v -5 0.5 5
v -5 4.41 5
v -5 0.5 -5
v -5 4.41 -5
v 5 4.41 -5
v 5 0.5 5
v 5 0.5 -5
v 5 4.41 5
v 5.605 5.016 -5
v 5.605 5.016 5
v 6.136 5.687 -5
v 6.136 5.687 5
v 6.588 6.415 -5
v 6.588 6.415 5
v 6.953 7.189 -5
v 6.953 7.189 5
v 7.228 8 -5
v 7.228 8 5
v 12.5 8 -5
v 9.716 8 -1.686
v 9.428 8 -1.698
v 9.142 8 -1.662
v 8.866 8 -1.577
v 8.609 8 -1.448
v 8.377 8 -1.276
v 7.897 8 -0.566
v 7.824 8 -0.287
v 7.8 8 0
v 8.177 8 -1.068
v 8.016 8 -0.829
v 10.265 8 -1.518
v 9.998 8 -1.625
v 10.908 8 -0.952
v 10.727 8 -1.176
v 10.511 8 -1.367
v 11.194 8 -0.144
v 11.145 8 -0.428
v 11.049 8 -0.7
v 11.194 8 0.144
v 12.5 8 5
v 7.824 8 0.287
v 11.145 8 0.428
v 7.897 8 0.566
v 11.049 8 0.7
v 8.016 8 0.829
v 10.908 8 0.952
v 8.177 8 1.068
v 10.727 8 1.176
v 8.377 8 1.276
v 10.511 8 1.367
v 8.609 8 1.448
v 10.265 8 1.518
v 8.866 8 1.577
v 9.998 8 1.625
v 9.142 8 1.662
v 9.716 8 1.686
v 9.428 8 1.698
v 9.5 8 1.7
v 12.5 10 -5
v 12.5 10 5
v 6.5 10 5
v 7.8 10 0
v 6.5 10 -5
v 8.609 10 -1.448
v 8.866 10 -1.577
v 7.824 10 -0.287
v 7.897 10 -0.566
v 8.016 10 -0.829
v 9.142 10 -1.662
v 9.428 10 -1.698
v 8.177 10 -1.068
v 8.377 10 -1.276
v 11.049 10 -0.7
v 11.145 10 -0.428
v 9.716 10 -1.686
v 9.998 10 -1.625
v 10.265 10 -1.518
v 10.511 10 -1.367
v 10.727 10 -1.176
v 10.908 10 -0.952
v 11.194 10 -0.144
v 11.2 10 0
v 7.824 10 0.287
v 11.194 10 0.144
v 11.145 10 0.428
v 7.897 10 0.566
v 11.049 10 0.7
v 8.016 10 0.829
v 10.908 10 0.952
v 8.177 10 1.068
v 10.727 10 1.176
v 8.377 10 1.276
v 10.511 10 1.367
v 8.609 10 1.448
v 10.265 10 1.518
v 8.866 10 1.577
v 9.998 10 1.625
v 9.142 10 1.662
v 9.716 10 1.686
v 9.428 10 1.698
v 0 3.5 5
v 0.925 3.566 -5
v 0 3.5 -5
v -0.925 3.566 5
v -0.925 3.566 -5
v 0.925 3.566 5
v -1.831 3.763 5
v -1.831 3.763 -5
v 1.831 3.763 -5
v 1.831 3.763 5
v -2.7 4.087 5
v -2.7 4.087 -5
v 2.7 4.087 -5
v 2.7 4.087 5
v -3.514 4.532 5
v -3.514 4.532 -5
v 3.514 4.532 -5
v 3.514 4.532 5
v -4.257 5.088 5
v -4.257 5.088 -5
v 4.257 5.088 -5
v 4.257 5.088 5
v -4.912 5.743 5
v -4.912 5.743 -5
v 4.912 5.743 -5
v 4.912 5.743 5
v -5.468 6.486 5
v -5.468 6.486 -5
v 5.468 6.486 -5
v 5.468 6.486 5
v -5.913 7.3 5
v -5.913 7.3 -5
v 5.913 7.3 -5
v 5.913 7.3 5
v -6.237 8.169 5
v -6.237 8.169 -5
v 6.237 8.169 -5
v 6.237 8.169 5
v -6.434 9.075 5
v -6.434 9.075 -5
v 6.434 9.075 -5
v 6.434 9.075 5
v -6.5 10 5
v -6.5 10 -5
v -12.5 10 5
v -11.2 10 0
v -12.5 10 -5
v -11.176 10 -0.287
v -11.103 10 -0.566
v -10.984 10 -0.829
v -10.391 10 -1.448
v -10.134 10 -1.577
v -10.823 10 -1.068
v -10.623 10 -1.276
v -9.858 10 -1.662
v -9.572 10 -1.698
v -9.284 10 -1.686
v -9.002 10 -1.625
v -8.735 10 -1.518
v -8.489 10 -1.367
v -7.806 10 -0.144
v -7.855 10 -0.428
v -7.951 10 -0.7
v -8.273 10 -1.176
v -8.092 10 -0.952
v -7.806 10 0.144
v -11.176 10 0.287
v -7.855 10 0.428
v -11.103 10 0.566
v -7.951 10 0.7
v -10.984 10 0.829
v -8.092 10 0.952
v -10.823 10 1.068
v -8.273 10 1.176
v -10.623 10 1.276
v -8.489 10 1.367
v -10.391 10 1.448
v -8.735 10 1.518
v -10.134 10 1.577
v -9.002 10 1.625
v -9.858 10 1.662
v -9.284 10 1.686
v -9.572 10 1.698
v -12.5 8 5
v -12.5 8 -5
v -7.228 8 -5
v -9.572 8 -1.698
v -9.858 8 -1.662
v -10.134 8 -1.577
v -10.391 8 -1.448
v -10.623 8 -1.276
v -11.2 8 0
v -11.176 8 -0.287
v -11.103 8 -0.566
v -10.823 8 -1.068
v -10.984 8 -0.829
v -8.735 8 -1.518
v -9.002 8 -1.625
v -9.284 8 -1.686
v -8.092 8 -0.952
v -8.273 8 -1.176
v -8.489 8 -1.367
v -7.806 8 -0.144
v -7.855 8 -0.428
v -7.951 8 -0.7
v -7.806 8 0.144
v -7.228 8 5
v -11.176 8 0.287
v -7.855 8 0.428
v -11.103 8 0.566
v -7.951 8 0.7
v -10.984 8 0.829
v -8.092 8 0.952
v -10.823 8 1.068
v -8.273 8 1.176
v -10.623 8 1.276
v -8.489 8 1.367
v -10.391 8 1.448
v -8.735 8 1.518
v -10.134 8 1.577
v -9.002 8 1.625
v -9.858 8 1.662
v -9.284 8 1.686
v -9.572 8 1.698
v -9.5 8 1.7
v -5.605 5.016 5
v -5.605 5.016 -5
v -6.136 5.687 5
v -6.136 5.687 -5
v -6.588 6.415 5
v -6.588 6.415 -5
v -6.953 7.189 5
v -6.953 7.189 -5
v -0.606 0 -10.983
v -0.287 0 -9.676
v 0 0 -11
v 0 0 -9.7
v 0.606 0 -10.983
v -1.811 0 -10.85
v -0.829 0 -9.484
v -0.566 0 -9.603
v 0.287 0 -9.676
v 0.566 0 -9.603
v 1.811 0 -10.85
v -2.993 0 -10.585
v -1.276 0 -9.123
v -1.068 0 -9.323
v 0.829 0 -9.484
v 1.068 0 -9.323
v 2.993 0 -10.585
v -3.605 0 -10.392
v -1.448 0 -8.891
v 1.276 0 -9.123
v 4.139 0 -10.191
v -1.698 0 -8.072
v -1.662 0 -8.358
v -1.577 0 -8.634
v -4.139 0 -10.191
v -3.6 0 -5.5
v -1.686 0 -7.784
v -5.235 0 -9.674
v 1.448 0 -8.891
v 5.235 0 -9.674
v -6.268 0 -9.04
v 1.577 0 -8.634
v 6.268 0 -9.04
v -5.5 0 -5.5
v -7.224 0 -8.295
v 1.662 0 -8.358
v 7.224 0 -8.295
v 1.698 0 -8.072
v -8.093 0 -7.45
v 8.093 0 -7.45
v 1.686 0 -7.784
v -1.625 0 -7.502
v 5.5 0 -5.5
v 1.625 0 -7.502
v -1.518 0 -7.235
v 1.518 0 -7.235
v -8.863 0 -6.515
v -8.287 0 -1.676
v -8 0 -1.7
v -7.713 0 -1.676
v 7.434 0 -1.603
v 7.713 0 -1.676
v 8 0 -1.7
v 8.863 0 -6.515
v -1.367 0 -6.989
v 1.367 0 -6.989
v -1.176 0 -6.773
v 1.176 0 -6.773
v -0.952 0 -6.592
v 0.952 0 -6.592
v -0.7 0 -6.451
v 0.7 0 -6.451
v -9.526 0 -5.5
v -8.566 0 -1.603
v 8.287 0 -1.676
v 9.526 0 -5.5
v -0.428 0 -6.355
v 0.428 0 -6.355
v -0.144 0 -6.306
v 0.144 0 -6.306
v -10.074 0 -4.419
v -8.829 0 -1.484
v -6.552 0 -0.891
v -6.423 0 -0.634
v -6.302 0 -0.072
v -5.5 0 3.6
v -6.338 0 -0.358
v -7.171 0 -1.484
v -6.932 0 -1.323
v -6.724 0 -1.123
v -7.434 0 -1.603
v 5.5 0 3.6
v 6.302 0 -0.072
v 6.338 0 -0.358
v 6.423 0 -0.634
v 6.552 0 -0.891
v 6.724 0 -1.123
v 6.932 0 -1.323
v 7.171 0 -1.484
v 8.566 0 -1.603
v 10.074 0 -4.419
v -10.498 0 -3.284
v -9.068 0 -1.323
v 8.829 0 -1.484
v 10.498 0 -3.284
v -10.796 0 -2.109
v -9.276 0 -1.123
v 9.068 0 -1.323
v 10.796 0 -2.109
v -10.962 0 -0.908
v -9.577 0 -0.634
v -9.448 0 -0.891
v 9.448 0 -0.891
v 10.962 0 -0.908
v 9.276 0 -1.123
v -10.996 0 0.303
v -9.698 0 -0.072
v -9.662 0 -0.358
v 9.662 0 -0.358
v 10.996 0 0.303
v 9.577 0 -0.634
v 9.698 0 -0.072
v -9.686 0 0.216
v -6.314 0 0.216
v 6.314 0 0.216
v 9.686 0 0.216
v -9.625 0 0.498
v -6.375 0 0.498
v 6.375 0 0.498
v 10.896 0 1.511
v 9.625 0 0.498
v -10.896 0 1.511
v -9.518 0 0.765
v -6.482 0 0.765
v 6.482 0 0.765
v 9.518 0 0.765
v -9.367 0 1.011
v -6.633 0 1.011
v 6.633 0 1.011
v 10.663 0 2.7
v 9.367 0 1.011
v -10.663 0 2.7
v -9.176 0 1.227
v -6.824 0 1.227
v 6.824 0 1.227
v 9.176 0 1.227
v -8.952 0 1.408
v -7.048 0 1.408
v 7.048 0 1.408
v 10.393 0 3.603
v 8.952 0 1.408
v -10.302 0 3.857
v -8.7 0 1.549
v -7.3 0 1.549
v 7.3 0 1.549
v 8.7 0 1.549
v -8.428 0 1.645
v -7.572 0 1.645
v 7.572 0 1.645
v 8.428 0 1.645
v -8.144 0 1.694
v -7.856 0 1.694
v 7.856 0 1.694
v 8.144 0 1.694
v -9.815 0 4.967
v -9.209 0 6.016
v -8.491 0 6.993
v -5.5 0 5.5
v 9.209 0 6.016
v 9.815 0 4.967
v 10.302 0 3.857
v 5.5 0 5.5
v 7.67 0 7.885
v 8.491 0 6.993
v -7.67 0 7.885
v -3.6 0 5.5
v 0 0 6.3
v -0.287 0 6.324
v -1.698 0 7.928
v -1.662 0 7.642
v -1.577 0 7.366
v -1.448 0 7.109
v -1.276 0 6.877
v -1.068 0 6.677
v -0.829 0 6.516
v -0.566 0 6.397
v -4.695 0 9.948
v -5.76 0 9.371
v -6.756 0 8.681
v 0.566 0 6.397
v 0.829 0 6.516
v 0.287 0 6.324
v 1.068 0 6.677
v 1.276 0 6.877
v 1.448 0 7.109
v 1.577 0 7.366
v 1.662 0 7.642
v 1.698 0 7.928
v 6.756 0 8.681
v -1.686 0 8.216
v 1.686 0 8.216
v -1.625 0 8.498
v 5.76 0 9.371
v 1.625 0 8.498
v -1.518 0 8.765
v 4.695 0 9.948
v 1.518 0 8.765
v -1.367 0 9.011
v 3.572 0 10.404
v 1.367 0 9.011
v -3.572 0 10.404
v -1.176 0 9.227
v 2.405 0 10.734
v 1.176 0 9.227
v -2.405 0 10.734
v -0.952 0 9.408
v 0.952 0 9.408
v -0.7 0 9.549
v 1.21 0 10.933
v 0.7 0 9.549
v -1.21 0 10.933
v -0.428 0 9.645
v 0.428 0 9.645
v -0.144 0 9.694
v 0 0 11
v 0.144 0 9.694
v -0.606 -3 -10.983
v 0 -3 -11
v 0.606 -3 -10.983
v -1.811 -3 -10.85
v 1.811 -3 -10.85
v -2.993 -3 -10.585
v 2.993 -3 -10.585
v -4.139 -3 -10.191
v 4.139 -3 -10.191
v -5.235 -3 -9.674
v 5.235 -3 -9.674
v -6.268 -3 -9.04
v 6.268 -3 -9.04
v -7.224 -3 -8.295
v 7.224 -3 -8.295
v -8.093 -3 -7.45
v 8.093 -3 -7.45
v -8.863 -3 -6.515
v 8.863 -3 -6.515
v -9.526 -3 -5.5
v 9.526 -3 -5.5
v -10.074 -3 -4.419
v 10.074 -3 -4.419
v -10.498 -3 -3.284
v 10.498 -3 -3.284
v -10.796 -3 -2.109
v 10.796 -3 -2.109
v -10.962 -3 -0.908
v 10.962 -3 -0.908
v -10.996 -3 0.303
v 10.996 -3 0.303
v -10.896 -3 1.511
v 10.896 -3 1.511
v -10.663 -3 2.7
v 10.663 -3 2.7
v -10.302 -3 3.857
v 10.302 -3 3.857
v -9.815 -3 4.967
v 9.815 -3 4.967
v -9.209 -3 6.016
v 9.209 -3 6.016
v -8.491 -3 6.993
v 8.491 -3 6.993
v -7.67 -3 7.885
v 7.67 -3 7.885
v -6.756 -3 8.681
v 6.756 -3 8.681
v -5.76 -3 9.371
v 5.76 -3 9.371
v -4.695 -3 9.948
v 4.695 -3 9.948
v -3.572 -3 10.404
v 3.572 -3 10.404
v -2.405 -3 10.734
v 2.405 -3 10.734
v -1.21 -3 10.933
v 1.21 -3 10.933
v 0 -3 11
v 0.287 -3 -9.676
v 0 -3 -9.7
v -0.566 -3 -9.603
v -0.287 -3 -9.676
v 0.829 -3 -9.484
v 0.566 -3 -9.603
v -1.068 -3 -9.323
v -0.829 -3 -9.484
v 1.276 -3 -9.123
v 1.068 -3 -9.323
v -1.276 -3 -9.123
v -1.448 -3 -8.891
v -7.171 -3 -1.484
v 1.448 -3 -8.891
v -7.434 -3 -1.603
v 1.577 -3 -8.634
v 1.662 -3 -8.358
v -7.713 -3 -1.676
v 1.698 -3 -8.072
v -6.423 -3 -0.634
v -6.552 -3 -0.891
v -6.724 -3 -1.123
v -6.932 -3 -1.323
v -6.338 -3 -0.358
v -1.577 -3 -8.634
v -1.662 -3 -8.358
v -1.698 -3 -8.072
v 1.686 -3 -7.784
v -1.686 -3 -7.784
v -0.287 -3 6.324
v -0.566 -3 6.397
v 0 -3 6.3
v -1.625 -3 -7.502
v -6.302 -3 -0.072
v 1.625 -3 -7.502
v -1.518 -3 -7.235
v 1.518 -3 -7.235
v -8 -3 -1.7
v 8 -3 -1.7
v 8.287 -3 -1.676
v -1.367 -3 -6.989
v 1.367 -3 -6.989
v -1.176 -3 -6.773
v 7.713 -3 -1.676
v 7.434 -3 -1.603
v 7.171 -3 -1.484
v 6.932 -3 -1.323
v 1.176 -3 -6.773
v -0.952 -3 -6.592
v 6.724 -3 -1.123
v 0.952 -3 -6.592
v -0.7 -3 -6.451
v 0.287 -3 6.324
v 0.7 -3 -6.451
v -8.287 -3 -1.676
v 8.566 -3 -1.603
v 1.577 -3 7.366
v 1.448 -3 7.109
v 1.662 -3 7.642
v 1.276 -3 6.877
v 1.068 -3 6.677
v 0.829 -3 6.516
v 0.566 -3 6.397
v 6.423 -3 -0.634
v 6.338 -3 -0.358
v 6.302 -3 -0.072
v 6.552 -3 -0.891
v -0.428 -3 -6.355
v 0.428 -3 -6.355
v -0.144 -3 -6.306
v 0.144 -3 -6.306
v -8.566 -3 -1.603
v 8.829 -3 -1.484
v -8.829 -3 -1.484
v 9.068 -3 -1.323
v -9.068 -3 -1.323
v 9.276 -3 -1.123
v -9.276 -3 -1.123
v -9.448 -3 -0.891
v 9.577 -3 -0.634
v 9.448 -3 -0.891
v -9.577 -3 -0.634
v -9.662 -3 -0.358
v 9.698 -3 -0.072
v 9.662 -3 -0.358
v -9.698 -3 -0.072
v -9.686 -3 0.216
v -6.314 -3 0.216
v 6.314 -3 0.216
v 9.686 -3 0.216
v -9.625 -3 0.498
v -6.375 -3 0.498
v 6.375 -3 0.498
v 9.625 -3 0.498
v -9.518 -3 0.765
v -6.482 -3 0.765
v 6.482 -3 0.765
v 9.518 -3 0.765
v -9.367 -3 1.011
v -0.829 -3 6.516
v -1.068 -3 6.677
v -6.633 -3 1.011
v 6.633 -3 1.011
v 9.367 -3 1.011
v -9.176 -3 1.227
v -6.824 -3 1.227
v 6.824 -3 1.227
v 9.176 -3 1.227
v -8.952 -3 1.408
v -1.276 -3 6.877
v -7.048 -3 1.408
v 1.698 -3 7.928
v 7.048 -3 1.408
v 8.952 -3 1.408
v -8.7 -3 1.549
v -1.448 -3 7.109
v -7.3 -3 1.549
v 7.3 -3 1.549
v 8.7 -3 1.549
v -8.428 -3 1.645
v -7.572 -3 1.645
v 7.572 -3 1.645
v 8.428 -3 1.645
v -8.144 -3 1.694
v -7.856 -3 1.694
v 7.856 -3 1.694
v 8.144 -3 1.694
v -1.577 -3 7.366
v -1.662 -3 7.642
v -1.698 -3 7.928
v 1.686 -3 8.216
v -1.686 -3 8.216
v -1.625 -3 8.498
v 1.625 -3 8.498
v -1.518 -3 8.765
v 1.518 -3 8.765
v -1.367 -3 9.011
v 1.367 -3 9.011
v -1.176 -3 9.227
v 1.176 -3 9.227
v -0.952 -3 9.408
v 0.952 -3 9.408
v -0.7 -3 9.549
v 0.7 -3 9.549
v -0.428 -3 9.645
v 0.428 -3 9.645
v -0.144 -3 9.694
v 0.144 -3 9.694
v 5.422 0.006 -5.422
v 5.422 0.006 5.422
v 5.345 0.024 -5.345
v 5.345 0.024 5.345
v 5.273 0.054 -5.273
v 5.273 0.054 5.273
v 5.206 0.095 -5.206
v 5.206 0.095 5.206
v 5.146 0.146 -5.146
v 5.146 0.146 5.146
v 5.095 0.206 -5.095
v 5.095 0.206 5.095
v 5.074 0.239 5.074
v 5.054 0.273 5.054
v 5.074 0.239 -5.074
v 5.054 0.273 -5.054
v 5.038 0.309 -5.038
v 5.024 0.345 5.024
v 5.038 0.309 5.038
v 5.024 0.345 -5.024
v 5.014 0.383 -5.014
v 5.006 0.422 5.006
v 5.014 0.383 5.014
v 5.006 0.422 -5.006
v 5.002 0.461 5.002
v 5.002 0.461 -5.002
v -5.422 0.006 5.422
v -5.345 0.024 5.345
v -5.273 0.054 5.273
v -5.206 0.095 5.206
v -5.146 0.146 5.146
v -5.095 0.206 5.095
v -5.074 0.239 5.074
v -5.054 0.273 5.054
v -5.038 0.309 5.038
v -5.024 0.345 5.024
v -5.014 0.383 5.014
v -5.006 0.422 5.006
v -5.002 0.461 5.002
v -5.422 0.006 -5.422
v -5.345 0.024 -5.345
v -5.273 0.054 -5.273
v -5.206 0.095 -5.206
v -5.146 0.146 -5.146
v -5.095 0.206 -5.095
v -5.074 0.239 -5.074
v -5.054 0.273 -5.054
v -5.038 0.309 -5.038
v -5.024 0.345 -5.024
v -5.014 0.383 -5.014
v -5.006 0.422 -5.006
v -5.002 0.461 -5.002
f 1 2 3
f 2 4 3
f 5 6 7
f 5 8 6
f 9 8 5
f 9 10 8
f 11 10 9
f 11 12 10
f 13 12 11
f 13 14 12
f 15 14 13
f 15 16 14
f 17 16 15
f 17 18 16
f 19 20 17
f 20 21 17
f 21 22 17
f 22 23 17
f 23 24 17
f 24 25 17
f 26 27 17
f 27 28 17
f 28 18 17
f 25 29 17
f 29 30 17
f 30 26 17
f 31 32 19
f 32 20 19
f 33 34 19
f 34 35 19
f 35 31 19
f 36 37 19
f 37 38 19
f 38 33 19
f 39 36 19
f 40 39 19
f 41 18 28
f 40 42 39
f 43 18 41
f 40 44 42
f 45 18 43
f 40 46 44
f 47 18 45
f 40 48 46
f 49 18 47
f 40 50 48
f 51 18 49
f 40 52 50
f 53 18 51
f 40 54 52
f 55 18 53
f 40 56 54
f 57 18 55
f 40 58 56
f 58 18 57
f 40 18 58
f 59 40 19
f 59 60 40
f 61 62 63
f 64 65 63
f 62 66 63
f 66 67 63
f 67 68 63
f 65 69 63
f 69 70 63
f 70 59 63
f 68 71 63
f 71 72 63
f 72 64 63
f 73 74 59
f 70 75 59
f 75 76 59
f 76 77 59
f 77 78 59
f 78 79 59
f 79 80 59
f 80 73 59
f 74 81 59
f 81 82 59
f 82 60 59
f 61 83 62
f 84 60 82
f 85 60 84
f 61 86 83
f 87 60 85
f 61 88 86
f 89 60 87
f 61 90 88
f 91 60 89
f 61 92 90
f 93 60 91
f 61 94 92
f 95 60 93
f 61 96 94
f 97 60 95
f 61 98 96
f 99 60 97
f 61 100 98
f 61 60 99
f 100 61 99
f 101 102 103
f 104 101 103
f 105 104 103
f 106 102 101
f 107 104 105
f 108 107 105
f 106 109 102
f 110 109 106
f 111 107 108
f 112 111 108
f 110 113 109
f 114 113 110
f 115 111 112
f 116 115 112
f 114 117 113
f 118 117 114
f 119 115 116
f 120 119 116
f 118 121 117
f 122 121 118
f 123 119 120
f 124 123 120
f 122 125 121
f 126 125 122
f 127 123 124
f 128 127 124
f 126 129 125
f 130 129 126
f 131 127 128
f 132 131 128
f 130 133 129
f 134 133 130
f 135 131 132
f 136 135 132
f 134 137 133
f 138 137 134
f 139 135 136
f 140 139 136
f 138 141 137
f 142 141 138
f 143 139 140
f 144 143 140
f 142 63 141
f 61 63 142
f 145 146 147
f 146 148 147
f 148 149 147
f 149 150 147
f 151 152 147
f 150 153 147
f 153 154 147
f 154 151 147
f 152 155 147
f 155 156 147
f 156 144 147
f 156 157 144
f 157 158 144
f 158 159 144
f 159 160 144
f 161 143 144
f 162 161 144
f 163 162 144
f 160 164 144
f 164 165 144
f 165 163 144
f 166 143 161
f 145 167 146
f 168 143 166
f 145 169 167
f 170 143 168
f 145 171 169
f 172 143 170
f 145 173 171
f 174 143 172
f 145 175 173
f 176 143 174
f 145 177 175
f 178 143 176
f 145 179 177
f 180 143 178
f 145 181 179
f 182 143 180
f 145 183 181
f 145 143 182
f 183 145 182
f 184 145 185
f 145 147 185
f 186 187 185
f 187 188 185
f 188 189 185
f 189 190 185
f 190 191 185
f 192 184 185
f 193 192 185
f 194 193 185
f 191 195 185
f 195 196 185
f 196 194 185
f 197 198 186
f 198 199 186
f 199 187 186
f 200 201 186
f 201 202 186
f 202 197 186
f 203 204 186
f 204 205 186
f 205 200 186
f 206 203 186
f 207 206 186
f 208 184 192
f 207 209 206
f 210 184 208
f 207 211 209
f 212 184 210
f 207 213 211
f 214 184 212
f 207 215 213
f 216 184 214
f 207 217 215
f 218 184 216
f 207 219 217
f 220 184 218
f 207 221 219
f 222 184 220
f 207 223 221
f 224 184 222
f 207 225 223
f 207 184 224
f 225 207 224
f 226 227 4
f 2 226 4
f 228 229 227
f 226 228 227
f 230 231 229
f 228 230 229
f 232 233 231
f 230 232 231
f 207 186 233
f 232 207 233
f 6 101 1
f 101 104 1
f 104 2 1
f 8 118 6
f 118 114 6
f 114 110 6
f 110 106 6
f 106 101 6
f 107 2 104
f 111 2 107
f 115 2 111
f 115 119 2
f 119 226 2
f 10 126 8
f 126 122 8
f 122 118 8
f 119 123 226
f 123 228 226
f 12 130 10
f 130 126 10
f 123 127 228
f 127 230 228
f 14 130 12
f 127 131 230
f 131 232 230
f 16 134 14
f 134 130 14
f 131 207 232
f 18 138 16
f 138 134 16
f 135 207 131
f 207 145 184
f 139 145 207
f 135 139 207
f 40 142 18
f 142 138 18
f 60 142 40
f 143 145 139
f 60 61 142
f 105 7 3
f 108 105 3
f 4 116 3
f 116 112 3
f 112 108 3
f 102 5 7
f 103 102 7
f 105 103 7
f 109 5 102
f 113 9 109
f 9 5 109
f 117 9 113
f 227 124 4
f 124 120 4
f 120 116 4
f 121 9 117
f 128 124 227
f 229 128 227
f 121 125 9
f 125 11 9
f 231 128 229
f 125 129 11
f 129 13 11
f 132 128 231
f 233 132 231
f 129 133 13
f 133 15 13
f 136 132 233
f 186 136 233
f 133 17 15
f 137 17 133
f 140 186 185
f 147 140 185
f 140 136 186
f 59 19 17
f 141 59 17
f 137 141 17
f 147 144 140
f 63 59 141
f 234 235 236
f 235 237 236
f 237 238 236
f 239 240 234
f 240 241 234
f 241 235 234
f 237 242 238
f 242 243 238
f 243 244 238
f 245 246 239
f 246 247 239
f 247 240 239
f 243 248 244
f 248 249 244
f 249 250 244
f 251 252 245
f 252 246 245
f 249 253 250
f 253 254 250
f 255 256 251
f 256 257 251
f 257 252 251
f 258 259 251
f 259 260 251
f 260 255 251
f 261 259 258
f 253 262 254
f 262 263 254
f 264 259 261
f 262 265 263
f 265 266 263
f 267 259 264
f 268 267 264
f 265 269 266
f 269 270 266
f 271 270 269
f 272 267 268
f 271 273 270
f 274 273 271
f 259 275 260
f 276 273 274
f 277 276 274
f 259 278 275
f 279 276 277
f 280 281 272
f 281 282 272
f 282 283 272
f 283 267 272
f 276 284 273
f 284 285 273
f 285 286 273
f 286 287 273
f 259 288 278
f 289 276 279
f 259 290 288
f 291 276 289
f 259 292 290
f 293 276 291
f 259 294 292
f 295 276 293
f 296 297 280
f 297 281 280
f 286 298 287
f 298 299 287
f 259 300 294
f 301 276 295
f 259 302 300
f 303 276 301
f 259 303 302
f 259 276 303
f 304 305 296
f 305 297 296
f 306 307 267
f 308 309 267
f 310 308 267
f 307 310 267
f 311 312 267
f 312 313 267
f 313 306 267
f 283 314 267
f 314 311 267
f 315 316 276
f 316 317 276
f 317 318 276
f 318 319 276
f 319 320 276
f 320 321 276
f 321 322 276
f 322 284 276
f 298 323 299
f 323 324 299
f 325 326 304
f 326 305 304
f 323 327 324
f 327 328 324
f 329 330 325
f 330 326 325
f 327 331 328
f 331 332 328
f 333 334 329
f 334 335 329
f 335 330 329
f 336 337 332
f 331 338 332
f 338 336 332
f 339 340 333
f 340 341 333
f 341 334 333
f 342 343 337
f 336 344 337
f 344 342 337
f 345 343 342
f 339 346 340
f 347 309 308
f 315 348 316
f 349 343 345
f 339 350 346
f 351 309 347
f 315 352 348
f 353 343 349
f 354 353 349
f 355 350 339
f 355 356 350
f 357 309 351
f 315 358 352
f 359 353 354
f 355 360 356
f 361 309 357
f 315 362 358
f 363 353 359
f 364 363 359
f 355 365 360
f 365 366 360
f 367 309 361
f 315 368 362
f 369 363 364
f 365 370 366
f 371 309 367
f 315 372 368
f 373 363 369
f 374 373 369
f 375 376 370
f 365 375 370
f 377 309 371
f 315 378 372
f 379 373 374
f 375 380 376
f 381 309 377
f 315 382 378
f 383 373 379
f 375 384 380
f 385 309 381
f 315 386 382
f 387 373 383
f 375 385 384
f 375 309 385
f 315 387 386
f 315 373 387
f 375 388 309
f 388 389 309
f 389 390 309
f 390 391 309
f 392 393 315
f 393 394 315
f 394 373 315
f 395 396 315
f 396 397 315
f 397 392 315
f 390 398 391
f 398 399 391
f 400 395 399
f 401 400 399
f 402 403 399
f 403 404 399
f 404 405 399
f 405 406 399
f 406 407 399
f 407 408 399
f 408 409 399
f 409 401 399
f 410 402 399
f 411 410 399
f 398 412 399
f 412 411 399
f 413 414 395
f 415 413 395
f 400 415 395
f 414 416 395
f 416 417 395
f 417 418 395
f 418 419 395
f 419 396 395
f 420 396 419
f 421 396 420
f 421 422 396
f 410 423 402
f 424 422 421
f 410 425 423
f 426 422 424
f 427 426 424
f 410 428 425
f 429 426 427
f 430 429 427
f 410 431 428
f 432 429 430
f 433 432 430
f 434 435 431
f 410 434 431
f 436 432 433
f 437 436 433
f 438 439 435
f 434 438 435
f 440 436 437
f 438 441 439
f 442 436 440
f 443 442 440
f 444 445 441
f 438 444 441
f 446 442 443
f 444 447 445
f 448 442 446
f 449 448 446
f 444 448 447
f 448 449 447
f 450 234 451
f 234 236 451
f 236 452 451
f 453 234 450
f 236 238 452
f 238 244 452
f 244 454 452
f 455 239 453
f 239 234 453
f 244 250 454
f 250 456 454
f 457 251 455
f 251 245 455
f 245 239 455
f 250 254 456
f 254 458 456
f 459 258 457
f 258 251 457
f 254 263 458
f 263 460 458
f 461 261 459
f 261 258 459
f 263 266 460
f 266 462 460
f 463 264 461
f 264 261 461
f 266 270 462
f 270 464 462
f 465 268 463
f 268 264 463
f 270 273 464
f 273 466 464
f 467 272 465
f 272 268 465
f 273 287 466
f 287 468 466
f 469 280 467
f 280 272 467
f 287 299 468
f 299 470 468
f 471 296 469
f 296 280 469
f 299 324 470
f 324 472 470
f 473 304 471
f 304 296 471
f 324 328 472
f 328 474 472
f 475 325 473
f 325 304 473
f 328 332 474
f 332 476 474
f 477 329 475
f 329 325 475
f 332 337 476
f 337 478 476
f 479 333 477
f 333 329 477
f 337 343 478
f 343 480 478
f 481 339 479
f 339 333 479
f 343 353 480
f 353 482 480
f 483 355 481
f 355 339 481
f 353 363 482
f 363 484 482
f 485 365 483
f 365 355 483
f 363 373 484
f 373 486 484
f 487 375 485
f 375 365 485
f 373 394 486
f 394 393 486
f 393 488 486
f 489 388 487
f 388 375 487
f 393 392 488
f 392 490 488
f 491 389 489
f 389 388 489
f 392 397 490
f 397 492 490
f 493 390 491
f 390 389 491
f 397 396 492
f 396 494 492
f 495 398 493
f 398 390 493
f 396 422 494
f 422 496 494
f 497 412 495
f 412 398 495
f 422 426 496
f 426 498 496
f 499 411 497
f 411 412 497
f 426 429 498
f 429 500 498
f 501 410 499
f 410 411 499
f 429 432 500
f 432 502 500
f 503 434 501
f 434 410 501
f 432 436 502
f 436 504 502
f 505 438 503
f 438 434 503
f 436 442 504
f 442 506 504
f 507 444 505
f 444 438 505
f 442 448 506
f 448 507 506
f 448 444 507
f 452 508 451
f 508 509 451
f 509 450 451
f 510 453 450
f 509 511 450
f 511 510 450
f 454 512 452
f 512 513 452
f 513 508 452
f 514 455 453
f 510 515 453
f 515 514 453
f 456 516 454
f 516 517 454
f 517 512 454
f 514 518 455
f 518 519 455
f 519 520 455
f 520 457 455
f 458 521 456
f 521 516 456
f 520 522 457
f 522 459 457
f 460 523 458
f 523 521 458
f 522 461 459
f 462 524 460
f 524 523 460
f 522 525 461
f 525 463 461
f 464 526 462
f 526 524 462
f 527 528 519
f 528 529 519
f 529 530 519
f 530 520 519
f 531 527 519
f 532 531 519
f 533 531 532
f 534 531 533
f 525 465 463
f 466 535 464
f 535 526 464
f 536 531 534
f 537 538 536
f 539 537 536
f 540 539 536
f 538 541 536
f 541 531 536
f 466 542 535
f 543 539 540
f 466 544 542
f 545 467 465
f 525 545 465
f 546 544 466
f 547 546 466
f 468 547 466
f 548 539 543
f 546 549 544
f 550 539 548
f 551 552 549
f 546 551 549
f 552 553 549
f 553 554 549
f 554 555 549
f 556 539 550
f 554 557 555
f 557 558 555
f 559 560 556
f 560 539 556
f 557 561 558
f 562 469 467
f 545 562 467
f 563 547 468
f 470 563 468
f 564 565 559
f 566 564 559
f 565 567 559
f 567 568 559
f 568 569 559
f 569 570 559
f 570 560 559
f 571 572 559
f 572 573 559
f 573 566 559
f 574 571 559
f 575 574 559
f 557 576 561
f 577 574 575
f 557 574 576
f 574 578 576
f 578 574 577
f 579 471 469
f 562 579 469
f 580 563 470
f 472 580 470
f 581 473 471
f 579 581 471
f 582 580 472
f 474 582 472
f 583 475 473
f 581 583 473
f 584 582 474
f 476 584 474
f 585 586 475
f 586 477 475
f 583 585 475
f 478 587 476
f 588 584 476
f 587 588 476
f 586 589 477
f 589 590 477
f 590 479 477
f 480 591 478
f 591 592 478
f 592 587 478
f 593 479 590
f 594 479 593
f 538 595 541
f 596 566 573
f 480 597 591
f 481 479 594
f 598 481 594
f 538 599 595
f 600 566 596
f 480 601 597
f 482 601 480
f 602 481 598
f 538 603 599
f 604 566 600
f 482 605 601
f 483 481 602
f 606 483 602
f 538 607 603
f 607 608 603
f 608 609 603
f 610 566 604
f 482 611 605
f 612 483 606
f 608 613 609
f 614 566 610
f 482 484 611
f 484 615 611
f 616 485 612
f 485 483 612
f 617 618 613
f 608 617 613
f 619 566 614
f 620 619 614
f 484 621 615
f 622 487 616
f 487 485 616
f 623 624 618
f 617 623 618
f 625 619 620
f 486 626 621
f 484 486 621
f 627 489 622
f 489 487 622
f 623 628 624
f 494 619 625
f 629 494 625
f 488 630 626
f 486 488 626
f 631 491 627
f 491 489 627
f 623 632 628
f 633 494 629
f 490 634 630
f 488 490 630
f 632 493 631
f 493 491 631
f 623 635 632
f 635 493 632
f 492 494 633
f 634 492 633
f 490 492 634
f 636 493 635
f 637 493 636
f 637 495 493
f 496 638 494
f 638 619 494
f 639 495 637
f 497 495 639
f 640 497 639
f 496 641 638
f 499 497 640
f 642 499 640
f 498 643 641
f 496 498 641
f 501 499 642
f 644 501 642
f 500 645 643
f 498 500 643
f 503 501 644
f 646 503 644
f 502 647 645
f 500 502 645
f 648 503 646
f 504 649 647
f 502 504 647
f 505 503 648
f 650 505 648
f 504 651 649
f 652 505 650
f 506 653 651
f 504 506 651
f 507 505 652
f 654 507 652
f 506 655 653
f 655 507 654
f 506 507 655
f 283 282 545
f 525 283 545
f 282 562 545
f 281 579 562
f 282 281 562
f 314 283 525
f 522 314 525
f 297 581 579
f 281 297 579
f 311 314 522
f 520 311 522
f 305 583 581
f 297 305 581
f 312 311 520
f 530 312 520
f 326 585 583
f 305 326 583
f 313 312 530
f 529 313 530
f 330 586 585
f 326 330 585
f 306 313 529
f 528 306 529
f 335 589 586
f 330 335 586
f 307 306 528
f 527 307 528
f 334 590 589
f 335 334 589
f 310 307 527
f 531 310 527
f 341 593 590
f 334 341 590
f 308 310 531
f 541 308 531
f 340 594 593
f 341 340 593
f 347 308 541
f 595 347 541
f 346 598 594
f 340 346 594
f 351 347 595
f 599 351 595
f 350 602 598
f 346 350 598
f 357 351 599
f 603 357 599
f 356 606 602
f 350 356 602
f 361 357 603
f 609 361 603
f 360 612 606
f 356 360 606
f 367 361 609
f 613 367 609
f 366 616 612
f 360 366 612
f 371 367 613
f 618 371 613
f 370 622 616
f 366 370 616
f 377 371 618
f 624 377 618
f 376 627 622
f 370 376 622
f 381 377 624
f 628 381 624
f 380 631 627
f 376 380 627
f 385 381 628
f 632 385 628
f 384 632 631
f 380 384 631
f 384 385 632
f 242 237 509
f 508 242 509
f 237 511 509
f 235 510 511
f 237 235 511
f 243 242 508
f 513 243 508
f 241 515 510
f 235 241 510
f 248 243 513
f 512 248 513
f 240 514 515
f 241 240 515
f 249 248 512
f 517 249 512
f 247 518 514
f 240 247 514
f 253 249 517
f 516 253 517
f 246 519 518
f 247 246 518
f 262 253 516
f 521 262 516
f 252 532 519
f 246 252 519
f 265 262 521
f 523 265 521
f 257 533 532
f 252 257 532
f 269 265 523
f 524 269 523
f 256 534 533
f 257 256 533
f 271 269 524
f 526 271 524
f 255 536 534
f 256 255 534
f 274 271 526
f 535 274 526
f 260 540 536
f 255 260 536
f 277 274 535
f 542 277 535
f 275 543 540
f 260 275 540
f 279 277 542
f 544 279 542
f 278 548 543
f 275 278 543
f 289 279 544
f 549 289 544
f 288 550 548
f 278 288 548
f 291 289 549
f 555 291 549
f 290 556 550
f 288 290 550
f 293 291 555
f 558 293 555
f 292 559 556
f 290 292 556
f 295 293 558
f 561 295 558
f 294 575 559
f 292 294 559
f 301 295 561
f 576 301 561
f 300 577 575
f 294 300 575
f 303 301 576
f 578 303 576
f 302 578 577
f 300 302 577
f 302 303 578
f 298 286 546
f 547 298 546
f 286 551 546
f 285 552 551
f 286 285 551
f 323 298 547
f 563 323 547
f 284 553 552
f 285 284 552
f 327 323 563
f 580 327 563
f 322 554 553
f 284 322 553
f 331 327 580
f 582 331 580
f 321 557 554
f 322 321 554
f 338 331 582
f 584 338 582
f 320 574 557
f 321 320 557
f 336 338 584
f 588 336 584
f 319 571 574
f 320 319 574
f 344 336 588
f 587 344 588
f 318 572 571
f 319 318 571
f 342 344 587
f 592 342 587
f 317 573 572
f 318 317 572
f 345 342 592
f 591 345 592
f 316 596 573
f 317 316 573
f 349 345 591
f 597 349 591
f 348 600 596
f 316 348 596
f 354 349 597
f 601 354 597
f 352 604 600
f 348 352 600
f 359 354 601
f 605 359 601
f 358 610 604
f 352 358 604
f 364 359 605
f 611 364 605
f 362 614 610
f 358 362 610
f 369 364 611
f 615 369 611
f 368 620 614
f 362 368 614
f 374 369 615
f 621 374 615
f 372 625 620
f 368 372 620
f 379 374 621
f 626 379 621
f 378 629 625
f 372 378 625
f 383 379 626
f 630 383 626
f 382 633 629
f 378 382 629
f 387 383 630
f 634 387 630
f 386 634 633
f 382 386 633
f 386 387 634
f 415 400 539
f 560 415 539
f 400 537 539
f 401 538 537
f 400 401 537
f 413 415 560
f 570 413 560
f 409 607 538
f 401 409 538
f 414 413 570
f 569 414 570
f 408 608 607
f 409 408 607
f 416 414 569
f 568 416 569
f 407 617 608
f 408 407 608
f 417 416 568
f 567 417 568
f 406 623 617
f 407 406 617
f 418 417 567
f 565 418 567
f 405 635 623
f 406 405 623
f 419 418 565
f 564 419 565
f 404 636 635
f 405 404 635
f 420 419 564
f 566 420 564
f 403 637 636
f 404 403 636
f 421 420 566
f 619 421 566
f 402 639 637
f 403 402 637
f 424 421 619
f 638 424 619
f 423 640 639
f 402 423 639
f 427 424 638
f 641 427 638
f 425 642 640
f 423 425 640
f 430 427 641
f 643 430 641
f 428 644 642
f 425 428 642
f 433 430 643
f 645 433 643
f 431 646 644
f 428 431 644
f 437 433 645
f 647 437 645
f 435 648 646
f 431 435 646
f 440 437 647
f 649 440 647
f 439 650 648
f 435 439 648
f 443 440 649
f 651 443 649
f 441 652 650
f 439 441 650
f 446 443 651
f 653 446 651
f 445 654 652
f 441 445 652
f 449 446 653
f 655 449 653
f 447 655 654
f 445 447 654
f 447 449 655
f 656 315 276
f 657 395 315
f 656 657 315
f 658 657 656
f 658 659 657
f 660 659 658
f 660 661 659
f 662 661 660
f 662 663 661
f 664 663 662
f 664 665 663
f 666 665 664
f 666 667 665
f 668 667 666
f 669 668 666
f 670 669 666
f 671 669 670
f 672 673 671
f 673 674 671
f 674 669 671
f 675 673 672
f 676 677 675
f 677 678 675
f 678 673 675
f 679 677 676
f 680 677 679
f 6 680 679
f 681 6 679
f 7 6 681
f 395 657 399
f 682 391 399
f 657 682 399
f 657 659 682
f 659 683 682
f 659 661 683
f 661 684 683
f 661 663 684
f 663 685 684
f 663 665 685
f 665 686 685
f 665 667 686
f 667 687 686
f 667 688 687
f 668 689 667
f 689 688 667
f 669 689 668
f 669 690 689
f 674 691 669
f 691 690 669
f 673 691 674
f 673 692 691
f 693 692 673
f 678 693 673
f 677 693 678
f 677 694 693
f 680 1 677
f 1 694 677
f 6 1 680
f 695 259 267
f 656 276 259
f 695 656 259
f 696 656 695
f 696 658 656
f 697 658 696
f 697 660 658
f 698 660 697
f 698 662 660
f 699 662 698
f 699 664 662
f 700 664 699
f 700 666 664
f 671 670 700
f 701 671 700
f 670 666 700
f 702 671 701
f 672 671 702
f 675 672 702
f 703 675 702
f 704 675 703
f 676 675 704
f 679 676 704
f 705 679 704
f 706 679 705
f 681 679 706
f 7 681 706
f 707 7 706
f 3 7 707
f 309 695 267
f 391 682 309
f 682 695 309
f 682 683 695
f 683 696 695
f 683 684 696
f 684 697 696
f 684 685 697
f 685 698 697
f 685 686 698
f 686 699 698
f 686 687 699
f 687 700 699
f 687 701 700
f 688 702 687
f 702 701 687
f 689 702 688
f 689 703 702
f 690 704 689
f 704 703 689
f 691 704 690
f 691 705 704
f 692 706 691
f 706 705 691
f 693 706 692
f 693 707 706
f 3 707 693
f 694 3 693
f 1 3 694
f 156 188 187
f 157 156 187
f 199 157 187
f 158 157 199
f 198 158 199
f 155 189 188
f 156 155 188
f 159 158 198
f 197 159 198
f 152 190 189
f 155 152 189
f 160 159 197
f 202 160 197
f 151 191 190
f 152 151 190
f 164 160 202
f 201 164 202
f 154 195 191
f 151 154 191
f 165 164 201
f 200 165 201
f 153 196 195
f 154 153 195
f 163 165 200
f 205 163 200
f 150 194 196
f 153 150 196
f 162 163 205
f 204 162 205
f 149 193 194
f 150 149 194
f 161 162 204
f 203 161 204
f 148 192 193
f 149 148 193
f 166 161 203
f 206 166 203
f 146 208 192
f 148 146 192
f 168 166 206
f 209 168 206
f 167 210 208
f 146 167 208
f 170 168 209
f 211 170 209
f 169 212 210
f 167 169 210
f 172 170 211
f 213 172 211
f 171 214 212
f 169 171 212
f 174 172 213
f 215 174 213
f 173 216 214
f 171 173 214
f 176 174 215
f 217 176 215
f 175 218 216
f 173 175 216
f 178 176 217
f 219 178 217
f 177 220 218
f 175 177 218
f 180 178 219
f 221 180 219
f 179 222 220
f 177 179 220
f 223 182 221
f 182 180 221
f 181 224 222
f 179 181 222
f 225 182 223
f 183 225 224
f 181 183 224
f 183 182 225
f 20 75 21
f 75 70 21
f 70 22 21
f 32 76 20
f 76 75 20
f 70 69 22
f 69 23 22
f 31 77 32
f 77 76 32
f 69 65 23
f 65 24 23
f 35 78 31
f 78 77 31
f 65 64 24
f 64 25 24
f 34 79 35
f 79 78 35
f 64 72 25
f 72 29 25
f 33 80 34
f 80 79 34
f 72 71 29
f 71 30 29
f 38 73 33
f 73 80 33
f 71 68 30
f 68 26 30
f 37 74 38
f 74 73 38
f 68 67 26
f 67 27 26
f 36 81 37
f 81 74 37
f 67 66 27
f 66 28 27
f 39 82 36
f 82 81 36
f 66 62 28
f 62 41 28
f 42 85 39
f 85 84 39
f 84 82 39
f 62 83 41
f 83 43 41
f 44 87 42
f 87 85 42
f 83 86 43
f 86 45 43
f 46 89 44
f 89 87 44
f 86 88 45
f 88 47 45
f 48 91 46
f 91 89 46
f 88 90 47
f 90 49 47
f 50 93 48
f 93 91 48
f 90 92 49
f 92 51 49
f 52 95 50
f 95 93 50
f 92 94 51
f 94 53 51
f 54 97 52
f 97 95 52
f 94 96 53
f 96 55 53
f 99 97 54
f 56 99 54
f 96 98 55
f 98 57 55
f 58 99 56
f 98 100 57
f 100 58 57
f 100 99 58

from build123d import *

# Parameters (mm, degrees)
EXTRUDE_1_DEPTH     = 5
SKETCH_2_R          = 11
EXTRUDE_2_DEPTH     = 3
SKETCH_3_R          = 1.7
CUT_EXTRUDE_1_DEPTH = 3
FILLET_1_R          = 0.5
CUT_EXTRUDE_2_REACH = 23.125
SKETCH_4_R          = 1.7


with BuildPart() as part:
    # 草图1 → 凸台-拉伸1 (new, symmetric)
    with BuildSketch(Plane.XY):
        with BuildLine():
            Line((5, 0), (-5, 0))
            Line((-5, 0), (-5, 4.409830056))
            ThreePointArc((-5, 4.409830056), (-6.372273568, 6.044733944), (-7.228416147, 8))
            Line((-7.228416147, 8), (-12.5, 8))
            Line((-12.5, 8), (-12.5, 10))
            Line((-12.5, 10), (-6.5, 10))
            ThreePointArc((-6.5, 10), (0, 3.5), (6.5, 10))
            Line((6.5, 10), (12.5, 10))
            Line((12.5, 10), (12.5, 8))
            Line((12.5, 8), (7.228416147, 8))
            ThreePointArc((7.228416147, 8), (6.372273568, 6.044733944), (5, 4.409830056))
            Line((5, 4.409830056), (5, 0))
        make_face()
    extrude(amount=EXTRUDE_1_DEPTH, both=True)

    # 草图2 → 凸台-拉伸2 (add)
    with BuildSketch(Plane.XZ):
        with Locations(Location((0, 0, 0), (0, 0, 270))):
            Circle(SKETCH_2_R)
    extrude(amount=EXTRUDE_2_DEPTH)

    # 草图3 → 切除-拉伸1 (cut)
    with BuildSketch(Plane.XZ.offset(3)):
        with Locations(Location((0, 8, 0), (0, 0, 270))):
            Circle(SKETCH_3_R)
        with Locations(Location((8, 0, 0), (0, 0, 270))):
            Circle(SKETCH_3_R)
        with Locations(Location((0, -8, 0), (0, 0, 270))):
            Circle(SKETCH_3_R)
        with Locations(Location((-8, 0, 0), (0, 0, 270))):
            Circle(SKETCH_3_R)
    extrude(amount=-CUT_EXTRUDE_1_DEPTH, mode=Mode.SUBTRACT)

    # 圆角1
    fillet_1_edges = [part.edges().sort_by_distance(p)[0] for p in [
        (0, 0, -5),
        (5, 0, 0),
        (-5, 0, 0),
        (0, 0, 5),
    ]]
    fillet(fillet_1_edges, radius=FILLET_1_R)

    # 草图4 → 切除-拉伸2 (cut, up to next)
    with BuildSketch(Plane(origin=(0, 10, 0), x_dir=(1, 0, 0), z_dir=(0, 1, 0)), mode=Mode.PRIVATE) as cut_extrude_2_sk1:
        with Locations(Location((-9.5, 0, 0), (0, 0, 180))):
            Circle(SKETCH_4_R)
    cut_extrude_2_tool1 = extrude(cut_extrude_2_sk1.sketch, amount=-CUT_EXTRUDE_2_REACH, mode=Mode.PRIVATE) & part.part
    # 草图4 → 切除-拉伸2 (cut, up to next)
    with BuildSketch(Plane(origin=(0, 10, 0), x_dir=(1, 0, 0), z_dir=(0, 1, 0)), mode=Mode.PRIVATE) as cut_extrude_2_sk2:
        with Locations(Location((9.5, 0, 0), (0, 0, 270))):
            Circle(SKETCH_4_R)
    cut_extrude_2_tool2 = extrude(cut_extrude_2_sk2.sketch, amount=-CUT_EXTRUDE_2_REACH, mode=Mode.PRIVATE) & part.part
    add(cut_extrude_2_tool1.solids().sort_by_distance((-9.5, 10, 0))[0], mode=Mode.SUBTRACT)
    add(cut_extrude_2_tool2.solids().sort_by_distance((9.5, 10, 0))[0], mode=Mode.SUBTRACT)


solid = part.part
